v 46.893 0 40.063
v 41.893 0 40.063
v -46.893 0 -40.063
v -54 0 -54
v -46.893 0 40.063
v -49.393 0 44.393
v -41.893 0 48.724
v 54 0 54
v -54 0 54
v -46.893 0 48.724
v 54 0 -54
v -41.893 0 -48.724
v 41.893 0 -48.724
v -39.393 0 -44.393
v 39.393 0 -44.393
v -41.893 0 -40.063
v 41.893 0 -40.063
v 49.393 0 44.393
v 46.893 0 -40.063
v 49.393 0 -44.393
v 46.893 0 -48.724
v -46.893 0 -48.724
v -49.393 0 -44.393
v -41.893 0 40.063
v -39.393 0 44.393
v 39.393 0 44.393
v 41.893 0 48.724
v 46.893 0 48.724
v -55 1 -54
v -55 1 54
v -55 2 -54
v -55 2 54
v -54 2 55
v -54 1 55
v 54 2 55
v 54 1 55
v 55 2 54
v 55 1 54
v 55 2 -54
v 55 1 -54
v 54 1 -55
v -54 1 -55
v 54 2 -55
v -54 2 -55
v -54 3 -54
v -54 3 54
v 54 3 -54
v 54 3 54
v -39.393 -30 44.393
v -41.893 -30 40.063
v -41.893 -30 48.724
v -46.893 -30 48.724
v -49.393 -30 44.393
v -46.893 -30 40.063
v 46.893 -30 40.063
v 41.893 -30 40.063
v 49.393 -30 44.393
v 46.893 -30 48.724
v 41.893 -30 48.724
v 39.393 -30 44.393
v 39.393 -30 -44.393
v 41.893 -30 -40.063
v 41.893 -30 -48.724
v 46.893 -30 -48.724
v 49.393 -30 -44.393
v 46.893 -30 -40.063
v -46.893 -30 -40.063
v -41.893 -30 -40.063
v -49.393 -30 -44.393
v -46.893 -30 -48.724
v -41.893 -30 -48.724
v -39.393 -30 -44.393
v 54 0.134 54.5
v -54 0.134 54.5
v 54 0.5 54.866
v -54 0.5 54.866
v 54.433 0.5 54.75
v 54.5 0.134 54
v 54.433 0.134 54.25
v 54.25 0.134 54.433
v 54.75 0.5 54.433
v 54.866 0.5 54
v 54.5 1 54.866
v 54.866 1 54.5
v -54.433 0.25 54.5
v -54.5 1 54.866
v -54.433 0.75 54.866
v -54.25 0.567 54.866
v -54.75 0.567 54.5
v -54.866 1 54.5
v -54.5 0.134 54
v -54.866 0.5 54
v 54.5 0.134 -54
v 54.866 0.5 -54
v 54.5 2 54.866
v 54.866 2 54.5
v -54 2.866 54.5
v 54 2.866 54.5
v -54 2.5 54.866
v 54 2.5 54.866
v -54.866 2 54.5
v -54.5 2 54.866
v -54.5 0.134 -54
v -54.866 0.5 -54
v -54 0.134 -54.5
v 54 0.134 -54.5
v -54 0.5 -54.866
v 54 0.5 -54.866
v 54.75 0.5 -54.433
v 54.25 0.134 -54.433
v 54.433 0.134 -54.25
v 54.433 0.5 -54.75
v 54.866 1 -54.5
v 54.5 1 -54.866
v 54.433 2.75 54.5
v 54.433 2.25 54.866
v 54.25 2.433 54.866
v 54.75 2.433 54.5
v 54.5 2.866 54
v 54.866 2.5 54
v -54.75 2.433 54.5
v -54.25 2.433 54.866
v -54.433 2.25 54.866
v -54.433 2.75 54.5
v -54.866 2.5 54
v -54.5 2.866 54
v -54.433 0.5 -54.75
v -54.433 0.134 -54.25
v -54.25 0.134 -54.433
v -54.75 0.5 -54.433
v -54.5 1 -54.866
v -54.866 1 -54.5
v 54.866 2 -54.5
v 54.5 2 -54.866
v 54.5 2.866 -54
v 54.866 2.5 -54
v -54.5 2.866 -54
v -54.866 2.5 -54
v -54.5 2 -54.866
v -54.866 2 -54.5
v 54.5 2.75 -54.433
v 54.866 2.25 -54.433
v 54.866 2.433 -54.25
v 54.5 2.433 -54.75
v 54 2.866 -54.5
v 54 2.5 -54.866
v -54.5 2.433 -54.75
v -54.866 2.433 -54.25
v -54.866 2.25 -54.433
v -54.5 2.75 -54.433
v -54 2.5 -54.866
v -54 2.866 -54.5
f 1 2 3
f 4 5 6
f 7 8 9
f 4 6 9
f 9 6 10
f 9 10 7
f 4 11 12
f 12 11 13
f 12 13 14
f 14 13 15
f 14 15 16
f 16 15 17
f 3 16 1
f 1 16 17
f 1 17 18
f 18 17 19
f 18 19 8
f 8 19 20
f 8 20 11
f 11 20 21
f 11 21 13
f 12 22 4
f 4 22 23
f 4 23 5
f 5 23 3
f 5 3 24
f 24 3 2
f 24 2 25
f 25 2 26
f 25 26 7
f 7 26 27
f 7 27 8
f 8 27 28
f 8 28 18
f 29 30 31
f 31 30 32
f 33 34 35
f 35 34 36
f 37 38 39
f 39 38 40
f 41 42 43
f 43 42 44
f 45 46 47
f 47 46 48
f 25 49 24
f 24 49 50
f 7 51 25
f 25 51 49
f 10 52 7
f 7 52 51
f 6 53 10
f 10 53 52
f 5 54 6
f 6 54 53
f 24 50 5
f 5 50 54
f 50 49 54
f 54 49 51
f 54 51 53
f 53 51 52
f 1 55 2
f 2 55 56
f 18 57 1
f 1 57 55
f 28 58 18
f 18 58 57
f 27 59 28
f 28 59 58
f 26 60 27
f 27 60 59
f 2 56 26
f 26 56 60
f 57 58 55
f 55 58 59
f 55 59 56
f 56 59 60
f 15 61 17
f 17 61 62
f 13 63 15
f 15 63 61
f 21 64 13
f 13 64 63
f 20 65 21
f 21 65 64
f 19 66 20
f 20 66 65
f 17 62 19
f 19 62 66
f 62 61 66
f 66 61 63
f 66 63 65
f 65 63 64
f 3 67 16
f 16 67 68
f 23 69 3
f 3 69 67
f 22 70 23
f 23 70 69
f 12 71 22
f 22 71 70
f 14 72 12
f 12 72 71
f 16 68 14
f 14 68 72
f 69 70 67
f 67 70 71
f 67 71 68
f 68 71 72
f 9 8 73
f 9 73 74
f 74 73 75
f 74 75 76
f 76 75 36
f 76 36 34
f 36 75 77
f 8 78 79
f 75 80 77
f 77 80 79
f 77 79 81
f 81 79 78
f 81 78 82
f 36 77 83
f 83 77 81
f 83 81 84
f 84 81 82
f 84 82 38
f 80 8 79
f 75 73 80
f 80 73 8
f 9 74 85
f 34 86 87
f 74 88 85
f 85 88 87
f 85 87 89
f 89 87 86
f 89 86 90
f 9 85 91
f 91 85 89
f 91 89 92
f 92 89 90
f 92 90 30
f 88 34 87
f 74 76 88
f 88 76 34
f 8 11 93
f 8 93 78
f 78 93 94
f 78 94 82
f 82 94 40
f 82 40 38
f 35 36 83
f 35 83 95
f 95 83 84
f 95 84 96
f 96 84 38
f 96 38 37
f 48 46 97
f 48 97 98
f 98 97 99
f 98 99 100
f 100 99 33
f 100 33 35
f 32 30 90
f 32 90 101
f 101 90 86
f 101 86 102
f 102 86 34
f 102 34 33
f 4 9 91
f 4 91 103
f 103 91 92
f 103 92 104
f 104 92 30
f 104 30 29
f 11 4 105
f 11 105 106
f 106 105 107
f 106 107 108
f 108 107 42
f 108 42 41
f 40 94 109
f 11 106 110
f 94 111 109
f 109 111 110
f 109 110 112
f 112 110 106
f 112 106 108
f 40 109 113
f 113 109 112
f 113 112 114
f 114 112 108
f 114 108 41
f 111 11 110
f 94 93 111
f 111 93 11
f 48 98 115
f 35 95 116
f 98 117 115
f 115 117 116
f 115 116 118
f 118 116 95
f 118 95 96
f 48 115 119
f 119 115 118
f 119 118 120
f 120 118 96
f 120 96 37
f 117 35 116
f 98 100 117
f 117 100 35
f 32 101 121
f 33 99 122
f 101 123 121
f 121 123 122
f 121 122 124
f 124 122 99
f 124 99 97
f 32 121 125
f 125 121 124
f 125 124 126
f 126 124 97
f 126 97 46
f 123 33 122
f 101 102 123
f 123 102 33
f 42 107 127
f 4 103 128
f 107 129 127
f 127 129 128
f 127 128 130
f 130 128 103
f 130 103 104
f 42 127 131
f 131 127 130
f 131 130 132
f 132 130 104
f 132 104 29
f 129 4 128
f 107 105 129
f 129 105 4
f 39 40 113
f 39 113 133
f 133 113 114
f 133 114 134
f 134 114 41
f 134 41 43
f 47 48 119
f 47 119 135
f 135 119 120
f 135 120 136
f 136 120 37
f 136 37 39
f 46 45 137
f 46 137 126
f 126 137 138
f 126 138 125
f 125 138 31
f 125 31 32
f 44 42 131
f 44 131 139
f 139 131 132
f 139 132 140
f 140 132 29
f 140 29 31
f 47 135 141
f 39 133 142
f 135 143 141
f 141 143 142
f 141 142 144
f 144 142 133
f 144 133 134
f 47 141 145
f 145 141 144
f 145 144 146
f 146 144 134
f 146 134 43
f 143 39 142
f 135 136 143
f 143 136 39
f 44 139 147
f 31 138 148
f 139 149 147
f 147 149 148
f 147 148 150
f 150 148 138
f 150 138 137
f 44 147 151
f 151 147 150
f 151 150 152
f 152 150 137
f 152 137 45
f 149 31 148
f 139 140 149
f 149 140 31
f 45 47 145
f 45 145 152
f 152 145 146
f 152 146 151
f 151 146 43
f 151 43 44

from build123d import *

# Parameters (mm, degrees)
SKETCH1_W           = 110
SKETCH1_H           = 110
BOSS_EXTRUDE1_DEPTH = 3
BOSS_EXTRUDE2_START = -2
BOSS_EXTRUDE2_DEPTH = 32
FILLET2_R           = 1


with BuildPart() as part:
    # Sketch1 → Boss-Extrude1 (new body)
    with BuildSketch(Plane(origin=(0, 0, 0), x_dir=(1, 0, 0), z_dir=(0, 1, 0))):
        Rectangle(SKETCH1_W, SKETCH1_H)
    extrude(amount=BOSS_EXTRUDE1_DEPTH)

    # Sketch2 → Boss-Extrude2 (add)
    with BuildSketch(Plane.XZ.offset(BOSS_EXTRUDE2_START)):
        Polygon((-39.393398282, 44.393398282), (-41.893398282, 48.723525301), (-46.893398282, 48.723525301), (-49.393398282, 44.393398282), (-46.893398282, 40.063271263), (-41.893398282, 40.063271263), align=None)
        Polygon((41.893398282, 40.063271263), (39.393398282, 44.393398282), (41.893398282, 48.723525301), (46.893398282, 48.723525301), (49.393398282, 44.393398282), (46.893398282, 40.063271263), align=None)
        Polygon((39.393398282, -44.393398282), (41.893398282, -48.723525301), (46.893398282, -48.723525301), (49.393398282, -44.393398282), (46.893398282, -40.063271263), (41.893398282, -40.063271263), align=None)
        Polygon((-41.893398282, -40.063271263), (-39.393398282, -44.393398282), (-41.893398282, -48.723525301), (-46.893398282, -48.723525301), (-49.393398282, -44.393398282), (-46.893398282, -40.063271263), align=None)
    extrude(amount=BOSS_EXTRUDE2_DEPTH)

    # Fillet2
    fillet2_edges = [part.edges().sort_by_distance(p)[0] for p in [
        (55, 3, 0),
        (0, 3, -55),
        (-55, 3, 0),
        (0, 0, -55),
        (55, 0, 0),
        (0, 0, 55),
        (-55, 0, 0),
        (-55, 1.5, -55),
        (55, 1.5, -55),
        (55, 1.5, 55),
        (-55, 1.5, 55),
        (0, 3, 55),
    ]]
    fillet(fillet2_edges, radius=FILLET2_R)


solid = part.part
